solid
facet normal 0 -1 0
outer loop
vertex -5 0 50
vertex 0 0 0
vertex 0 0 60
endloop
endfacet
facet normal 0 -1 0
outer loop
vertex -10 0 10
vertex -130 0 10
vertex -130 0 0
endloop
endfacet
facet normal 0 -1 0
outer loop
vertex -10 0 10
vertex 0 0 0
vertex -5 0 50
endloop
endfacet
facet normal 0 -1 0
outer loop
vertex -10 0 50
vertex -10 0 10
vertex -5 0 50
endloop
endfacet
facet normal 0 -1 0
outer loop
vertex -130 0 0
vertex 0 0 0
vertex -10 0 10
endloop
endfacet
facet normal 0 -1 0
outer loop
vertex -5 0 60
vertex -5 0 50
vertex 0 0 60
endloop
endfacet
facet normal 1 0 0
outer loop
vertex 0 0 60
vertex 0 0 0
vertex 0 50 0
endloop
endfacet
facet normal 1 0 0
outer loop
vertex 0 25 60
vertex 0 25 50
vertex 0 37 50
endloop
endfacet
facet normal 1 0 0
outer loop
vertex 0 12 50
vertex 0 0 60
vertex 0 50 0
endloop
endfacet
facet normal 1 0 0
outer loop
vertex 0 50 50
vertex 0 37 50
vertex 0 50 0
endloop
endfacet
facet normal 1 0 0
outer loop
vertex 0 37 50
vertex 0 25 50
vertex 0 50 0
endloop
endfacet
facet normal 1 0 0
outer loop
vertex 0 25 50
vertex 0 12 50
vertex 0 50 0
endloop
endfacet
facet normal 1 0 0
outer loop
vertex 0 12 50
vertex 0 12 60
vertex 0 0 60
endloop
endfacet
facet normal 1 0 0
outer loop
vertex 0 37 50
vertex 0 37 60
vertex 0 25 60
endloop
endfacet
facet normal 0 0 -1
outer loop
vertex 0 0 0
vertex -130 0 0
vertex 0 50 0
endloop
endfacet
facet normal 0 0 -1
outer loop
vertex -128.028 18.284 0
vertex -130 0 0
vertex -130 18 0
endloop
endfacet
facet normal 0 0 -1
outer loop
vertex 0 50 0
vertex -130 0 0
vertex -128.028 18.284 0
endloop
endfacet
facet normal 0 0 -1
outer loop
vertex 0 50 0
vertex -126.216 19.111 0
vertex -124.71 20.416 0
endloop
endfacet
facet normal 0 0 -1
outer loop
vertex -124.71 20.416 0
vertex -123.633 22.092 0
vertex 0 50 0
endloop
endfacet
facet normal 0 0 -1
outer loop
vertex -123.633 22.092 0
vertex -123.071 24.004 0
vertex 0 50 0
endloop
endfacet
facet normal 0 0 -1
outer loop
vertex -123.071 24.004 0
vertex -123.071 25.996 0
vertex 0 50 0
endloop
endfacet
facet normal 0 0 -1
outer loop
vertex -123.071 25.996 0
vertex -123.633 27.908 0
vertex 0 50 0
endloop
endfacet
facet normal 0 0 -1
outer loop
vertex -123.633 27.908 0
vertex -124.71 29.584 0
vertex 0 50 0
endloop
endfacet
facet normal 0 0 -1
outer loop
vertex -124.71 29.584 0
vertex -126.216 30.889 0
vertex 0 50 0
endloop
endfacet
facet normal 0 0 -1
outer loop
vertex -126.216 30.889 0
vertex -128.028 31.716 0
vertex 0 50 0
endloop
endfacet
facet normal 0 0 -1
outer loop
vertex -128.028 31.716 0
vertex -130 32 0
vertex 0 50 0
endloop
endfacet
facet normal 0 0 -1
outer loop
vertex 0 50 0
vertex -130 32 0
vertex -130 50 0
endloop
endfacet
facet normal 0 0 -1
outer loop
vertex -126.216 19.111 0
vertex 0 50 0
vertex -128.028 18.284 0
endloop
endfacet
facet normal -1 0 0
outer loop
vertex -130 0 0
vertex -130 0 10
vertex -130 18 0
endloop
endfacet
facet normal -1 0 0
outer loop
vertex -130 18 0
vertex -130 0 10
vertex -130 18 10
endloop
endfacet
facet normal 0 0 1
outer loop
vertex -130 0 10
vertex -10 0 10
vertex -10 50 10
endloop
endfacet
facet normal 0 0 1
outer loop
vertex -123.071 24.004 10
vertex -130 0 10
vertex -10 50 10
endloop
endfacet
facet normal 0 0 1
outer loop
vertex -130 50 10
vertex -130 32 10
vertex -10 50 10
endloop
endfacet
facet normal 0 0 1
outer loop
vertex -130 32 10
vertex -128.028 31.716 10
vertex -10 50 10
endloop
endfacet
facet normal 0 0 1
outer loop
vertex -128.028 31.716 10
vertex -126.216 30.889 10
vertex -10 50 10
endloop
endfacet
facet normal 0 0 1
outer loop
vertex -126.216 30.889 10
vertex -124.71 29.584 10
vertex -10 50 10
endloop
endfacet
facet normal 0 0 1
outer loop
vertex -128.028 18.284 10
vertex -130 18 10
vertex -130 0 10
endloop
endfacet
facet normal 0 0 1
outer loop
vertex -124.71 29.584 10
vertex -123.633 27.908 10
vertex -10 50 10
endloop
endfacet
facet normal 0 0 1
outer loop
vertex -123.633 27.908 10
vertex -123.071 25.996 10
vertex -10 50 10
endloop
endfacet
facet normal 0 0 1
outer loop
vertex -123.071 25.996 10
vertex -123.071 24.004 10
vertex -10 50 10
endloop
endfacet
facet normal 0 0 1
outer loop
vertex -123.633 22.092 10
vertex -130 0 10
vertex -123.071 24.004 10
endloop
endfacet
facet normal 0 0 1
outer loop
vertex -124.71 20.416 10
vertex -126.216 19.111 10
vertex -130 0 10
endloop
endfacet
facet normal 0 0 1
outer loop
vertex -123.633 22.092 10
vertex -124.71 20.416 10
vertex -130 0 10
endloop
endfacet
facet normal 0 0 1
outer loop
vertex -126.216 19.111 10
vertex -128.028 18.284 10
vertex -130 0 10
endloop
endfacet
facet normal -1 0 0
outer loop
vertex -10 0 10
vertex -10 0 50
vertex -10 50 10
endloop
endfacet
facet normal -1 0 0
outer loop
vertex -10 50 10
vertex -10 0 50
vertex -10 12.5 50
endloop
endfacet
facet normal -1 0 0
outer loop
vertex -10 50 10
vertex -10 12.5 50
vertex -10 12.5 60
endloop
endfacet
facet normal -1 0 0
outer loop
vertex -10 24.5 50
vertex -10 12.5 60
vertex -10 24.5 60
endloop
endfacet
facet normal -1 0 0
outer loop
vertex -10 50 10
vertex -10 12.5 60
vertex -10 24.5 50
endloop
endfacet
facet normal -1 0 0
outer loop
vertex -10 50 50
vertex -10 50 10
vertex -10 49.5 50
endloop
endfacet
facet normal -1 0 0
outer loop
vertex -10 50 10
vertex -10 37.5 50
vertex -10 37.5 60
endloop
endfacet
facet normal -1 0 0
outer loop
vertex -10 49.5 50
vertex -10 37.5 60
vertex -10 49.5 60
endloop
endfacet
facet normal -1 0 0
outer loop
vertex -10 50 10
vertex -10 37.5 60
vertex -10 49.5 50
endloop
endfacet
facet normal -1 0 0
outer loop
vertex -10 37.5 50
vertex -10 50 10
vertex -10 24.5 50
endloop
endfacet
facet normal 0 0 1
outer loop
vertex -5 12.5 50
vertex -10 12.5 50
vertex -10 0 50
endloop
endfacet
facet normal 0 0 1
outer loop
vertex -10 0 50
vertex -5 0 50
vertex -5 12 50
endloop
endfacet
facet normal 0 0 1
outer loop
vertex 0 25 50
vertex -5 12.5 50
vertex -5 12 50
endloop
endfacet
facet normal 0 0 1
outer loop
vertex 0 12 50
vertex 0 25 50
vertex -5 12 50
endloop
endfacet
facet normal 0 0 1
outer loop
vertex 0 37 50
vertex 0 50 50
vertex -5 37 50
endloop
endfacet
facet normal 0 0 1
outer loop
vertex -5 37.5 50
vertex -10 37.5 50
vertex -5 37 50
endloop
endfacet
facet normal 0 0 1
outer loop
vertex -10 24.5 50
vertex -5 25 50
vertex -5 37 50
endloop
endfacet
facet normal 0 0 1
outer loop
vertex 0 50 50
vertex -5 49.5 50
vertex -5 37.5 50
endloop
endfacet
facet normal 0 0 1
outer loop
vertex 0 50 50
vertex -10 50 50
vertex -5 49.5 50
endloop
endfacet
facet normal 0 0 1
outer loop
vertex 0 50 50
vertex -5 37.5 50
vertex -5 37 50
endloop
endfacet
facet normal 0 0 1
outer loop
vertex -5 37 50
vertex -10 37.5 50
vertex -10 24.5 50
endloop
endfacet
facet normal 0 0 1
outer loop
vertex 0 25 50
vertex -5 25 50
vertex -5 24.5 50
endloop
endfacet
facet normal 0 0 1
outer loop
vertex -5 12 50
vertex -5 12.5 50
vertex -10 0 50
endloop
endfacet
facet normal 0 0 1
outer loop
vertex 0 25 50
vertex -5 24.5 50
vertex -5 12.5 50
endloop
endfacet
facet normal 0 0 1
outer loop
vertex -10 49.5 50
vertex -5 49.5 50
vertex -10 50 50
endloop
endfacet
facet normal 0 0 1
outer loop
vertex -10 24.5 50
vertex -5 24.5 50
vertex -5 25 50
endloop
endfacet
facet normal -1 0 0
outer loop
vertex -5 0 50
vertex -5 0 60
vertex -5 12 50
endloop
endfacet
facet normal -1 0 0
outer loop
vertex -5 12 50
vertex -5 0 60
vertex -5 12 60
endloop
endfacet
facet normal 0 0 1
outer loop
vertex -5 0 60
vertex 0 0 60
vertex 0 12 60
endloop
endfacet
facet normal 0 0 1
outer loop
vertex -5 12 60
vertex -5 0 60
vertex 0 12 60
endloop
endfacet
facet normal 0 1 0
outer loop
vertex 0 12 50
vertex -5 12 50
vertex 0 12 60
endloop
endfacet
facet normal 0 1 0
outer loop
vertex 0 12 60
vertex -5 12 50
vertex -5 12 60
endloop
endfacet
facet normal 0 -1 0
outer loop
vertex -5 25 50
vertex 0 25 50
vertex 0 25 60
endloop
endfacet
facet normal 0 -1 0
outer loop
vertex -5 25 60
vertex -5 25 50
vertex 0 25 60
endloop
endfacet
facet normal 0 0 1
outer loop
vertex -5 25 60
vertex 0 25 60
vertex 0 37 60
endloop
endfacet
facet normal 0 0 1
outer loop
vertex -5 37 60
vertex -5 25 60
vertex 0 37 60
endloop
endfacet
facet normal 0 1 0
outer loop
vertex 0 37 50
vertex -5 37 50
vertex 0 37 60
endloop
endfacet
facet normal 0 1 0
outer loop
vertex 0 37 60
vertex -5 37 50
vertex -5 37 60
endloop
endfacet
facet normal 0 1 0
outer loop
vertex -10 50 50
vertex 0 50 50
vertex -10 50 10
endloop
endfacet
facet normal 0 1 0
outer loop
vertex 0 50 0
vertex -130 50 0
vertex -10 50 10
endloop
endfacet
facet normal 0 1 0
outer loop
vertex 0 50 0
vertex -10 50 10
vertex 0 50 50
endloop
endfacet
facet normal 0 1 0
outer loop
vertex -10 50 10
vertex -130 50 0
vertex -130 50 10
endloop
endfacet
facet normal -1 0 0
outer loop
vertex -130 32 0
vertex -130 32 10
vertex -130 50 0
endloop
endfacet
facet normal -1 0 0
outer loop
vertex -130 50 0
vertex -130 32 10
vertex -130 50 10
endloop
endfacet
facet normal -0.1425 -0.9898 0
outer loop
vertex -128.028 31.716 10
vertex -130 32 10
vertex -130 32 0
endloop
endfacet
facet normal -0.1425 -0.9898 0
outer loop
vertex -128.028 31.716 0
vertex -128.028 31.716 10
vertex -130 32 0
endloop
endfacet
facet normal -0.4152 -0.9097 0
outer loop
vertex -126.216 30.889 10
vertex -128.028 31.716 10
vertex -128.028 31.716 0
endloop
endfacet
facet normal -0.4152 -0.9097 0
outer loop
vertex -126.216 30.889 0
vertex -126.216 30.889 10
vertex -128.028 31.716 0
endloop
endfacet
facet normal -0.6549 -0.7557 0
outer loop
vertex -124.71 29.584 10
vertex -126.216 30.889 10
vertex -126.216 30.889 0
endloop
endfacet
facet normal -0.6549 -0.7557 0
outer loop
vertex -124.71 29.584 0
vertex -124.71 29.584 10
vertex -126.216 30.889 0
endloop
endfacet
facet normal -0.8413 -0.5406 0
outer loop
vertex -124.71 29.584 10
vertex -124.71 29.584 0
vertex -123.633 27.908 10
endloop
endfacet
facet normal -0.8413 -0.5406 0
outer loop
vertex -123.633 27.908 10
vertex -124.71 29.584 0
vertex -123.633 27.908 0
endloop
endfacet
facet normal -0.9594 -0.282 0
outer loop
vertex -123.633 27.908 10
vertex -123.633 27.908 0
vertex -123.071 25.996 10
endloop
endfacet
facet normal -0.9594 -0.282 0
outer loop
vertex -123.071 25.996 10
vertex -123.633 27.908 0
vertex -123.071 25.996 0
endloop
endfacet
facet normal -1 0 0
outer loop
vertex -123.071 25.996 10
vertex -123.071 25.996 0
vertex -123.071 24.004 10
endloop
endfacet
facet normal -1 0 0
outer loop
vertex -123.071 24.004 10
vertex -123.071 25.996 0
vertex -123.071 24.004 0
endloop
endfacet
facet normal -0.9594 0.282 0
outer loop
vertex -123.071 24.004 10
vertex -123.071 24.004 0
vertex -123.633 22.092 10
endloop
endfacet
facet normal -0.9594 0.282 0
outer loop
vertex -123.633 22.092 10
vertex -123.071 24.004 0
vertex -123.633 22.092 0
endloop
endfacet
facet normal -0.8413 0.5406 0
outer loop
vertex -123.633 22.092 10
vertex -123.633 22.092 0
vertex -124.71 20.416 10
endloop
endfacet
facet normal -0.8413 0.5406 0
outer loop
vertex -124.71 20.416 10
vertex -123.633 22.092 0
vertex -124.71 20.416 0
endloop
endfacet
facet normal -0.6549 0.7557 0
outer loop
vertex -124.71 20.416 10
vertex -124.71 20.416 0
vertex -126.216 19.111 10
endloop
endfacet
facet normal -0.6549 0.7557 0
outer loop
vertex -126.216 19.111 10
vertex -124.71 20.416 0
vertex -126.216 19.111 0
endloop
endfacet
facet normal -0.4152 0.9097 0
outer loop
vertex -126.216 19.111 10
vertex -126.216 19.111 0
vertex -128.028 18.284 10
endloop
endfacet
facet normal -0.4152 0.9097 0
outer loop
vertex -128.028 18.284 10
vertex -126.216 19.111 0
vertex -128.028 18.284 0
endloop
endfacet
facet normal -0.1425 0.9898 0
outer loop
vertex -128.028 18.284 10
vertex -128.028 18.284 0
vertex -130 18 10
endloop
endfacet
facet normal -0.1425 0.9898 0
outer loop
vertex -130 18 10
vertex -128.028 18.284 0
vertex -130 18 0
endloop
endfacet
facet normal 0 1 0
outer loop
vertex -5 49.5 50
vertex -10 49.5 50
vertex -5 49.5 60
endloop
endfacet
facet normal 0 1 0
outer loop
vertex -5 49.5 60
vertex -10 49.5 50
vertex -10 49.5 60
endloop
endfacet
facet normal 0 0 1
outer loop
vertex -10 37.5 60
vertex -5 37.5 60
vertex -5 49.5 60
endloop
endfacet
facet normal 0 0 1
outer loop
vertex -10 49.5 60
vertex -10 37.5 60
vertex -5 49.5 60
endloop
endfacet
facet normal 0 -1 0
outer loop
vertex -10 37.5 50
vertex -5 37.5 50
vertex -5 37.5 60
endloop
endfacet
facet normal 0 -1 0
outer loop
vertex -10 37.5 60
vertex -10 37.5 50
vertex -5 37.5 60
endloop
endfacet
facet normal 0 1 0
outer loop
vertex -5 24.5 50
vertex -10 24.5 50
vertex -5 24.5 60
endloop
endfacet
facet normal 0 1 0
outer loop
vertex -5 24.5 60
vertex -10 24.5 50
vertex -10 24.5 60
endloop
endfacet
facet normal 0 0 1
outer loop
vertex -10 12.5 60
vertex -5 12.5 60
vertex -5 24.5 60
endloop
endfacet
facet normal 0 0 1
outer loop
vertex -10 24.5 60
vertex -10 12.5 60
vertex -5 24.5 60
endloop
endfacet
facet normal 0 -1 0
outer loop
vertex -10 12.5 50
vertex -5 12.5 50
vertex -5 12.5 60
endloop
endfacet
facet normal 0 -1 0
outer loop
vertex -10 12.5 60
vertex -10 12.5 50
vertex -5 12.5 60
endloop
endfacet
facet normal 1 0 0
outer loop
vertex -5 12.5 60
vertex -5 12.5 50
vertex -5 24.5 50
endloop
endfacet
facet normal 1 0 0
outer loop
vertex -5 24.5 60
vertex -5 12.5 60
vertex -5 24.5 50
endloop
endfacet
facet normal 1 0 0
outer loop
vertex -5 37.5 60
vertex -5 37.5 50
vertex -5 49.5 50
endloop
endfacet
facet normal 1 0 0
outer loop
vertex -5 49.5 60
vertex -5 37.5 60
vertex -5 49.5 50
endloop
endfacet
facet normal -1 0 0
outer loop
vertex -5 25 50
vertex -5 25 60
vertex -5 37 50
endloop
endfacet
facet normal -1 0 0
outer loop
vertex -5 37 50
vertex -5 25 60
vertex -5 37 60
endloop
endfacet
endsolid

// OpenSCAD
rotate(90) {
difference() {
	cube([50, 130, 10]);
	translate([25,130,0]) {cylinder(10, r=7);}
}

cube([50, 10, 50]);
translate([0,0,50]) {
	cube([12,5,10]);
	translate([25,0,0]) {cube([12,5,10]);}
	translate([12.5,5,0]) {
		cube([12,5,10]);
		translate([25,0,0]) {cube([12,5,10]);}
	}
}
}
